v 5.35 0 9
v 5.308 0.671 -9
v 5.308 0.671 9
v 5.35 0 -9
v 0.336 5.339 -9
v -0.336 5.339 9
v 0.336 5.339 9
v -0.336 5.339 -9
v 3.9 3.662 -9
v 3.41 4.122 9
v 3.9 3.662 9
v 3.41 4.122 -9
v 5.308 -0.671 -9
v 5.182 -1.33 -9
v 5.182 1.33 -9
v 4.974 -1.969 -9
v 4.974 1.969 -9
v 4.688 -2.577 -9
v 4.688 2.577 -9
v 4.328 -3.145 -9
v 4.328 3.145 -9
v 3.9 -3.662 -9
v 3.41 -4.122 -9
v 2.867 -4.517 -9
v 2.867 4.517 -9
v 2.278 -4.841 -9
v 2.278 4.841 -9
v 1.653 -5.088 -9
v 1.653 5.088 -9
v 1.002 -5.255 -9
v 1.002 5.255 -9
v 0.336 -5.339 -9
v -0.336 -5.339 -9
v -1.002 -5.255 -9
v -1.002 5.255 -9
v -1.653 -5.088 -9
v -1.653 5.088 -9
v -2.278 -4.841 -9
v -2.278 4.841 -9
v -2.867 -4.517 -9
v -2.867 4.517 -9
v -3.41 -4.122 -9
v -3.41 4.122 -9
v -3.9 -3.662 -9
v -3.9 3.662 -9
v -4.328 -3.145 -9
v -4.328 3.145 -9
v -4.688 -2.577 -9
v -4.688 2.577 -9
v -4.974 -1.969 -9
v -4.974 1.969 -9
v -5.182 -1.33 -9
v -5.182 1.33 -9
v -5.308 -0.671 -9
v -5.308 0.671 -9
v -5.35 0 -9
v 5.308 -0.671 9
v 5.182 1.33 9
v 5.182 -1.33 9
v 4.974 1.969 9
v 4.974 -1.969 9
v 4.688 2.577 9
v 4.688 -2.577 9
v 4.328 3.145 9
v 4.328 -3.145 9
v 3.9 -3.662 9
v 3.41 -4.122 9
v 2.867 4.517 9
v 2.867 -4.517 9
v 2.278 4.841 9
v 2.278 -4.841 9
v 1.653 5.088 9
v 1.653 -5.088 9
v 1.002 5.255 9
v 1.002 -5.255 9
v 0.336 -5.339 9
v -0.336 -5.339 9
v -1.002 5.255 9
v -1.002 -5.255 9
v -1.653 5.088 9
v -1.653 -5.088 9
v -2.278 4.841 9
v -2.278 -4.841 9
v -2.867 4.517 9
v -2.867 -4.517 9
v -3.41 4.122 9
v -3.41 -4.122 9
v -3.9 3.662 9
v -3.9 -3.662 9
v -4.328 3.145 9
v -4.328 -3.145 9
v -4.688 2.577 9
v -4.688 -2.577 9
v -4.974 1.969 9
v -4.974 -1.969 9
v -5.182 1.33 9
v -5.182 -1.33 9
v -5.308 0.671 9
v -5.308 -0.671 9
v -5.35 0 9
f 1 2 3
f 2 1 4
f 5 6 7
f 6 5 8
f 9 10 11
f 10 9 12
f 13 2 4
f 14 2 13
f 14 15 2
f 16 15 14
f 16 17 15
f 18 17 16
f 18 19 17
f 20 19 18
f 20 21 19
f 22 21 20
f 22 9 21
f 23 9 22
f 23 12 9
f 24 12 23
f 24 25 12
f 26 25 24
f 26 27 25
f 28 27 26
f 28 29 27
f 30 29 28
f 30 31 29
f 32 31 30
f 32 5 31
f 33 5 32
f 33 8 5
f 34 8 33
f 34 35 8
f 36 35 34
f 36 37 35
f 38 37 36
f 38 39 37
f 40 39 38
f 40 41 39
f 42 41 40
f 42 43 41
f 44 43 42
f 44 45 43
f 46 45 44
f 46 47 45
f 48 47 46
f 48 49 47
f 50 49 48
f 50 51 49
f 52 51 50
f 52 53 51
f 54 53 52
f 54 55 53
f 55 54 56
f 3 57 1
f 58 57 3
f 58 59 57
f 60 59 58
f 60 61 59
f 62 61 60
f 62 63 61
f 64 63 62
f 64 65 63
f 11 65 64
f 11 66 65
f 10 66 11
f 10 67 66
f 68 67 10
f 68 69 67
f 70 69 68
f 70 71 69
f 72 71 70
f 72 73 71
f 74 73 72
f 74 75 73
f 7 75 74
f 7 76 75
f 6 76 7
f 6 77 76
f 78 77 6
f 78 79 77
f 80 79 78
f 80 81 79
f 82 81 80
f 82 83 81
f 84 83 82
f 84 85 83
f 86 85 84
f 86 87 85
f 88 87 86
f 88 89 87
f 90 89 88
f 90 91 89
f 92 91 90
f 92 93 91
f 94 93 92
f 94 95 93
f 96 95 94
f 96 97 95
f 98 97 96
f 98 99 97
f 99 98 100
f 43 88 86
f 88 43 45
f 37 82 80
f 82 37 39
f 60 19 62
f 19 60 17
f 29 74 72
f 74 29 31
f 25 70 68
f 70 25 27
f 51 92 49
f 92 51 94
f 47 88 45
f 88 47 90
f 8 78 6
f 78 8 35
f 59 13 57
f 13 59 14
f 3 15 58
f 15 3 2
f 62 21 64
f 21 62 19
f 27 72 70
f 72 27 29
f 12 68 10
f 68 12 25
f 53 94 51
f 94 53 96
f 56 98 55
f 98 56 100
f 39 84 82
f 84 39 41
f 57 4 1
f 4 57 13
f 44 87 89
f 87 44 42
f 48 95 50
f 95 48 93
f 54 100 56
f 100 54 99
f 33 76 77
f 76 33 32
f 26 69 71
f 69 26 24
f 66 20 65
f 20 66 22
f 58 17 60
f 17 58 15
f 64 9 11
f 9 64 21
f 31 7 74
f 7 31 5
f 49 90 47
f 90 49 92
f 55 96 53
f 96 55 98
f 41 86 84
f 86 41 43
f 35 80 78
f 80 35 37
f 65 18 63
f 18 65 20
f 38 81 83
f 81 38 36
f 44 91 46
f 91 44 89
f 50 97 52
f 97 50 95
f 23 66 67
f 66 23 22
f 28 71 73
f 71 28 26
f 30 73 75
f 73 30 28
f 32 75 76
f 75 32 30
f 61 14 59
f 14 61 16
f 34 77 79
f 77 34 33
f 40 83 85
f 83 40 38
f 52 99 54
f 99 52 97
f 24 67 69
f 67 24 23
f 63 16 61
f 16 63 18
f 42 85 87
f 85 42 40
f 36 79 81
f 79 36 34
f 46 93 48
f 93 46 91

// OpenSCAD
$fn = 50;


difference() {
	union() {
		translate(v = [0, 0, -9.0000000000]) {
			cylinder(h = 18, r = 5.3500000000);
		}
	}
	union() {
		translate(v = [0, 0, -100.0000000000]) {
			cylinder(h = 200, r = 0);
		}
	}
}
